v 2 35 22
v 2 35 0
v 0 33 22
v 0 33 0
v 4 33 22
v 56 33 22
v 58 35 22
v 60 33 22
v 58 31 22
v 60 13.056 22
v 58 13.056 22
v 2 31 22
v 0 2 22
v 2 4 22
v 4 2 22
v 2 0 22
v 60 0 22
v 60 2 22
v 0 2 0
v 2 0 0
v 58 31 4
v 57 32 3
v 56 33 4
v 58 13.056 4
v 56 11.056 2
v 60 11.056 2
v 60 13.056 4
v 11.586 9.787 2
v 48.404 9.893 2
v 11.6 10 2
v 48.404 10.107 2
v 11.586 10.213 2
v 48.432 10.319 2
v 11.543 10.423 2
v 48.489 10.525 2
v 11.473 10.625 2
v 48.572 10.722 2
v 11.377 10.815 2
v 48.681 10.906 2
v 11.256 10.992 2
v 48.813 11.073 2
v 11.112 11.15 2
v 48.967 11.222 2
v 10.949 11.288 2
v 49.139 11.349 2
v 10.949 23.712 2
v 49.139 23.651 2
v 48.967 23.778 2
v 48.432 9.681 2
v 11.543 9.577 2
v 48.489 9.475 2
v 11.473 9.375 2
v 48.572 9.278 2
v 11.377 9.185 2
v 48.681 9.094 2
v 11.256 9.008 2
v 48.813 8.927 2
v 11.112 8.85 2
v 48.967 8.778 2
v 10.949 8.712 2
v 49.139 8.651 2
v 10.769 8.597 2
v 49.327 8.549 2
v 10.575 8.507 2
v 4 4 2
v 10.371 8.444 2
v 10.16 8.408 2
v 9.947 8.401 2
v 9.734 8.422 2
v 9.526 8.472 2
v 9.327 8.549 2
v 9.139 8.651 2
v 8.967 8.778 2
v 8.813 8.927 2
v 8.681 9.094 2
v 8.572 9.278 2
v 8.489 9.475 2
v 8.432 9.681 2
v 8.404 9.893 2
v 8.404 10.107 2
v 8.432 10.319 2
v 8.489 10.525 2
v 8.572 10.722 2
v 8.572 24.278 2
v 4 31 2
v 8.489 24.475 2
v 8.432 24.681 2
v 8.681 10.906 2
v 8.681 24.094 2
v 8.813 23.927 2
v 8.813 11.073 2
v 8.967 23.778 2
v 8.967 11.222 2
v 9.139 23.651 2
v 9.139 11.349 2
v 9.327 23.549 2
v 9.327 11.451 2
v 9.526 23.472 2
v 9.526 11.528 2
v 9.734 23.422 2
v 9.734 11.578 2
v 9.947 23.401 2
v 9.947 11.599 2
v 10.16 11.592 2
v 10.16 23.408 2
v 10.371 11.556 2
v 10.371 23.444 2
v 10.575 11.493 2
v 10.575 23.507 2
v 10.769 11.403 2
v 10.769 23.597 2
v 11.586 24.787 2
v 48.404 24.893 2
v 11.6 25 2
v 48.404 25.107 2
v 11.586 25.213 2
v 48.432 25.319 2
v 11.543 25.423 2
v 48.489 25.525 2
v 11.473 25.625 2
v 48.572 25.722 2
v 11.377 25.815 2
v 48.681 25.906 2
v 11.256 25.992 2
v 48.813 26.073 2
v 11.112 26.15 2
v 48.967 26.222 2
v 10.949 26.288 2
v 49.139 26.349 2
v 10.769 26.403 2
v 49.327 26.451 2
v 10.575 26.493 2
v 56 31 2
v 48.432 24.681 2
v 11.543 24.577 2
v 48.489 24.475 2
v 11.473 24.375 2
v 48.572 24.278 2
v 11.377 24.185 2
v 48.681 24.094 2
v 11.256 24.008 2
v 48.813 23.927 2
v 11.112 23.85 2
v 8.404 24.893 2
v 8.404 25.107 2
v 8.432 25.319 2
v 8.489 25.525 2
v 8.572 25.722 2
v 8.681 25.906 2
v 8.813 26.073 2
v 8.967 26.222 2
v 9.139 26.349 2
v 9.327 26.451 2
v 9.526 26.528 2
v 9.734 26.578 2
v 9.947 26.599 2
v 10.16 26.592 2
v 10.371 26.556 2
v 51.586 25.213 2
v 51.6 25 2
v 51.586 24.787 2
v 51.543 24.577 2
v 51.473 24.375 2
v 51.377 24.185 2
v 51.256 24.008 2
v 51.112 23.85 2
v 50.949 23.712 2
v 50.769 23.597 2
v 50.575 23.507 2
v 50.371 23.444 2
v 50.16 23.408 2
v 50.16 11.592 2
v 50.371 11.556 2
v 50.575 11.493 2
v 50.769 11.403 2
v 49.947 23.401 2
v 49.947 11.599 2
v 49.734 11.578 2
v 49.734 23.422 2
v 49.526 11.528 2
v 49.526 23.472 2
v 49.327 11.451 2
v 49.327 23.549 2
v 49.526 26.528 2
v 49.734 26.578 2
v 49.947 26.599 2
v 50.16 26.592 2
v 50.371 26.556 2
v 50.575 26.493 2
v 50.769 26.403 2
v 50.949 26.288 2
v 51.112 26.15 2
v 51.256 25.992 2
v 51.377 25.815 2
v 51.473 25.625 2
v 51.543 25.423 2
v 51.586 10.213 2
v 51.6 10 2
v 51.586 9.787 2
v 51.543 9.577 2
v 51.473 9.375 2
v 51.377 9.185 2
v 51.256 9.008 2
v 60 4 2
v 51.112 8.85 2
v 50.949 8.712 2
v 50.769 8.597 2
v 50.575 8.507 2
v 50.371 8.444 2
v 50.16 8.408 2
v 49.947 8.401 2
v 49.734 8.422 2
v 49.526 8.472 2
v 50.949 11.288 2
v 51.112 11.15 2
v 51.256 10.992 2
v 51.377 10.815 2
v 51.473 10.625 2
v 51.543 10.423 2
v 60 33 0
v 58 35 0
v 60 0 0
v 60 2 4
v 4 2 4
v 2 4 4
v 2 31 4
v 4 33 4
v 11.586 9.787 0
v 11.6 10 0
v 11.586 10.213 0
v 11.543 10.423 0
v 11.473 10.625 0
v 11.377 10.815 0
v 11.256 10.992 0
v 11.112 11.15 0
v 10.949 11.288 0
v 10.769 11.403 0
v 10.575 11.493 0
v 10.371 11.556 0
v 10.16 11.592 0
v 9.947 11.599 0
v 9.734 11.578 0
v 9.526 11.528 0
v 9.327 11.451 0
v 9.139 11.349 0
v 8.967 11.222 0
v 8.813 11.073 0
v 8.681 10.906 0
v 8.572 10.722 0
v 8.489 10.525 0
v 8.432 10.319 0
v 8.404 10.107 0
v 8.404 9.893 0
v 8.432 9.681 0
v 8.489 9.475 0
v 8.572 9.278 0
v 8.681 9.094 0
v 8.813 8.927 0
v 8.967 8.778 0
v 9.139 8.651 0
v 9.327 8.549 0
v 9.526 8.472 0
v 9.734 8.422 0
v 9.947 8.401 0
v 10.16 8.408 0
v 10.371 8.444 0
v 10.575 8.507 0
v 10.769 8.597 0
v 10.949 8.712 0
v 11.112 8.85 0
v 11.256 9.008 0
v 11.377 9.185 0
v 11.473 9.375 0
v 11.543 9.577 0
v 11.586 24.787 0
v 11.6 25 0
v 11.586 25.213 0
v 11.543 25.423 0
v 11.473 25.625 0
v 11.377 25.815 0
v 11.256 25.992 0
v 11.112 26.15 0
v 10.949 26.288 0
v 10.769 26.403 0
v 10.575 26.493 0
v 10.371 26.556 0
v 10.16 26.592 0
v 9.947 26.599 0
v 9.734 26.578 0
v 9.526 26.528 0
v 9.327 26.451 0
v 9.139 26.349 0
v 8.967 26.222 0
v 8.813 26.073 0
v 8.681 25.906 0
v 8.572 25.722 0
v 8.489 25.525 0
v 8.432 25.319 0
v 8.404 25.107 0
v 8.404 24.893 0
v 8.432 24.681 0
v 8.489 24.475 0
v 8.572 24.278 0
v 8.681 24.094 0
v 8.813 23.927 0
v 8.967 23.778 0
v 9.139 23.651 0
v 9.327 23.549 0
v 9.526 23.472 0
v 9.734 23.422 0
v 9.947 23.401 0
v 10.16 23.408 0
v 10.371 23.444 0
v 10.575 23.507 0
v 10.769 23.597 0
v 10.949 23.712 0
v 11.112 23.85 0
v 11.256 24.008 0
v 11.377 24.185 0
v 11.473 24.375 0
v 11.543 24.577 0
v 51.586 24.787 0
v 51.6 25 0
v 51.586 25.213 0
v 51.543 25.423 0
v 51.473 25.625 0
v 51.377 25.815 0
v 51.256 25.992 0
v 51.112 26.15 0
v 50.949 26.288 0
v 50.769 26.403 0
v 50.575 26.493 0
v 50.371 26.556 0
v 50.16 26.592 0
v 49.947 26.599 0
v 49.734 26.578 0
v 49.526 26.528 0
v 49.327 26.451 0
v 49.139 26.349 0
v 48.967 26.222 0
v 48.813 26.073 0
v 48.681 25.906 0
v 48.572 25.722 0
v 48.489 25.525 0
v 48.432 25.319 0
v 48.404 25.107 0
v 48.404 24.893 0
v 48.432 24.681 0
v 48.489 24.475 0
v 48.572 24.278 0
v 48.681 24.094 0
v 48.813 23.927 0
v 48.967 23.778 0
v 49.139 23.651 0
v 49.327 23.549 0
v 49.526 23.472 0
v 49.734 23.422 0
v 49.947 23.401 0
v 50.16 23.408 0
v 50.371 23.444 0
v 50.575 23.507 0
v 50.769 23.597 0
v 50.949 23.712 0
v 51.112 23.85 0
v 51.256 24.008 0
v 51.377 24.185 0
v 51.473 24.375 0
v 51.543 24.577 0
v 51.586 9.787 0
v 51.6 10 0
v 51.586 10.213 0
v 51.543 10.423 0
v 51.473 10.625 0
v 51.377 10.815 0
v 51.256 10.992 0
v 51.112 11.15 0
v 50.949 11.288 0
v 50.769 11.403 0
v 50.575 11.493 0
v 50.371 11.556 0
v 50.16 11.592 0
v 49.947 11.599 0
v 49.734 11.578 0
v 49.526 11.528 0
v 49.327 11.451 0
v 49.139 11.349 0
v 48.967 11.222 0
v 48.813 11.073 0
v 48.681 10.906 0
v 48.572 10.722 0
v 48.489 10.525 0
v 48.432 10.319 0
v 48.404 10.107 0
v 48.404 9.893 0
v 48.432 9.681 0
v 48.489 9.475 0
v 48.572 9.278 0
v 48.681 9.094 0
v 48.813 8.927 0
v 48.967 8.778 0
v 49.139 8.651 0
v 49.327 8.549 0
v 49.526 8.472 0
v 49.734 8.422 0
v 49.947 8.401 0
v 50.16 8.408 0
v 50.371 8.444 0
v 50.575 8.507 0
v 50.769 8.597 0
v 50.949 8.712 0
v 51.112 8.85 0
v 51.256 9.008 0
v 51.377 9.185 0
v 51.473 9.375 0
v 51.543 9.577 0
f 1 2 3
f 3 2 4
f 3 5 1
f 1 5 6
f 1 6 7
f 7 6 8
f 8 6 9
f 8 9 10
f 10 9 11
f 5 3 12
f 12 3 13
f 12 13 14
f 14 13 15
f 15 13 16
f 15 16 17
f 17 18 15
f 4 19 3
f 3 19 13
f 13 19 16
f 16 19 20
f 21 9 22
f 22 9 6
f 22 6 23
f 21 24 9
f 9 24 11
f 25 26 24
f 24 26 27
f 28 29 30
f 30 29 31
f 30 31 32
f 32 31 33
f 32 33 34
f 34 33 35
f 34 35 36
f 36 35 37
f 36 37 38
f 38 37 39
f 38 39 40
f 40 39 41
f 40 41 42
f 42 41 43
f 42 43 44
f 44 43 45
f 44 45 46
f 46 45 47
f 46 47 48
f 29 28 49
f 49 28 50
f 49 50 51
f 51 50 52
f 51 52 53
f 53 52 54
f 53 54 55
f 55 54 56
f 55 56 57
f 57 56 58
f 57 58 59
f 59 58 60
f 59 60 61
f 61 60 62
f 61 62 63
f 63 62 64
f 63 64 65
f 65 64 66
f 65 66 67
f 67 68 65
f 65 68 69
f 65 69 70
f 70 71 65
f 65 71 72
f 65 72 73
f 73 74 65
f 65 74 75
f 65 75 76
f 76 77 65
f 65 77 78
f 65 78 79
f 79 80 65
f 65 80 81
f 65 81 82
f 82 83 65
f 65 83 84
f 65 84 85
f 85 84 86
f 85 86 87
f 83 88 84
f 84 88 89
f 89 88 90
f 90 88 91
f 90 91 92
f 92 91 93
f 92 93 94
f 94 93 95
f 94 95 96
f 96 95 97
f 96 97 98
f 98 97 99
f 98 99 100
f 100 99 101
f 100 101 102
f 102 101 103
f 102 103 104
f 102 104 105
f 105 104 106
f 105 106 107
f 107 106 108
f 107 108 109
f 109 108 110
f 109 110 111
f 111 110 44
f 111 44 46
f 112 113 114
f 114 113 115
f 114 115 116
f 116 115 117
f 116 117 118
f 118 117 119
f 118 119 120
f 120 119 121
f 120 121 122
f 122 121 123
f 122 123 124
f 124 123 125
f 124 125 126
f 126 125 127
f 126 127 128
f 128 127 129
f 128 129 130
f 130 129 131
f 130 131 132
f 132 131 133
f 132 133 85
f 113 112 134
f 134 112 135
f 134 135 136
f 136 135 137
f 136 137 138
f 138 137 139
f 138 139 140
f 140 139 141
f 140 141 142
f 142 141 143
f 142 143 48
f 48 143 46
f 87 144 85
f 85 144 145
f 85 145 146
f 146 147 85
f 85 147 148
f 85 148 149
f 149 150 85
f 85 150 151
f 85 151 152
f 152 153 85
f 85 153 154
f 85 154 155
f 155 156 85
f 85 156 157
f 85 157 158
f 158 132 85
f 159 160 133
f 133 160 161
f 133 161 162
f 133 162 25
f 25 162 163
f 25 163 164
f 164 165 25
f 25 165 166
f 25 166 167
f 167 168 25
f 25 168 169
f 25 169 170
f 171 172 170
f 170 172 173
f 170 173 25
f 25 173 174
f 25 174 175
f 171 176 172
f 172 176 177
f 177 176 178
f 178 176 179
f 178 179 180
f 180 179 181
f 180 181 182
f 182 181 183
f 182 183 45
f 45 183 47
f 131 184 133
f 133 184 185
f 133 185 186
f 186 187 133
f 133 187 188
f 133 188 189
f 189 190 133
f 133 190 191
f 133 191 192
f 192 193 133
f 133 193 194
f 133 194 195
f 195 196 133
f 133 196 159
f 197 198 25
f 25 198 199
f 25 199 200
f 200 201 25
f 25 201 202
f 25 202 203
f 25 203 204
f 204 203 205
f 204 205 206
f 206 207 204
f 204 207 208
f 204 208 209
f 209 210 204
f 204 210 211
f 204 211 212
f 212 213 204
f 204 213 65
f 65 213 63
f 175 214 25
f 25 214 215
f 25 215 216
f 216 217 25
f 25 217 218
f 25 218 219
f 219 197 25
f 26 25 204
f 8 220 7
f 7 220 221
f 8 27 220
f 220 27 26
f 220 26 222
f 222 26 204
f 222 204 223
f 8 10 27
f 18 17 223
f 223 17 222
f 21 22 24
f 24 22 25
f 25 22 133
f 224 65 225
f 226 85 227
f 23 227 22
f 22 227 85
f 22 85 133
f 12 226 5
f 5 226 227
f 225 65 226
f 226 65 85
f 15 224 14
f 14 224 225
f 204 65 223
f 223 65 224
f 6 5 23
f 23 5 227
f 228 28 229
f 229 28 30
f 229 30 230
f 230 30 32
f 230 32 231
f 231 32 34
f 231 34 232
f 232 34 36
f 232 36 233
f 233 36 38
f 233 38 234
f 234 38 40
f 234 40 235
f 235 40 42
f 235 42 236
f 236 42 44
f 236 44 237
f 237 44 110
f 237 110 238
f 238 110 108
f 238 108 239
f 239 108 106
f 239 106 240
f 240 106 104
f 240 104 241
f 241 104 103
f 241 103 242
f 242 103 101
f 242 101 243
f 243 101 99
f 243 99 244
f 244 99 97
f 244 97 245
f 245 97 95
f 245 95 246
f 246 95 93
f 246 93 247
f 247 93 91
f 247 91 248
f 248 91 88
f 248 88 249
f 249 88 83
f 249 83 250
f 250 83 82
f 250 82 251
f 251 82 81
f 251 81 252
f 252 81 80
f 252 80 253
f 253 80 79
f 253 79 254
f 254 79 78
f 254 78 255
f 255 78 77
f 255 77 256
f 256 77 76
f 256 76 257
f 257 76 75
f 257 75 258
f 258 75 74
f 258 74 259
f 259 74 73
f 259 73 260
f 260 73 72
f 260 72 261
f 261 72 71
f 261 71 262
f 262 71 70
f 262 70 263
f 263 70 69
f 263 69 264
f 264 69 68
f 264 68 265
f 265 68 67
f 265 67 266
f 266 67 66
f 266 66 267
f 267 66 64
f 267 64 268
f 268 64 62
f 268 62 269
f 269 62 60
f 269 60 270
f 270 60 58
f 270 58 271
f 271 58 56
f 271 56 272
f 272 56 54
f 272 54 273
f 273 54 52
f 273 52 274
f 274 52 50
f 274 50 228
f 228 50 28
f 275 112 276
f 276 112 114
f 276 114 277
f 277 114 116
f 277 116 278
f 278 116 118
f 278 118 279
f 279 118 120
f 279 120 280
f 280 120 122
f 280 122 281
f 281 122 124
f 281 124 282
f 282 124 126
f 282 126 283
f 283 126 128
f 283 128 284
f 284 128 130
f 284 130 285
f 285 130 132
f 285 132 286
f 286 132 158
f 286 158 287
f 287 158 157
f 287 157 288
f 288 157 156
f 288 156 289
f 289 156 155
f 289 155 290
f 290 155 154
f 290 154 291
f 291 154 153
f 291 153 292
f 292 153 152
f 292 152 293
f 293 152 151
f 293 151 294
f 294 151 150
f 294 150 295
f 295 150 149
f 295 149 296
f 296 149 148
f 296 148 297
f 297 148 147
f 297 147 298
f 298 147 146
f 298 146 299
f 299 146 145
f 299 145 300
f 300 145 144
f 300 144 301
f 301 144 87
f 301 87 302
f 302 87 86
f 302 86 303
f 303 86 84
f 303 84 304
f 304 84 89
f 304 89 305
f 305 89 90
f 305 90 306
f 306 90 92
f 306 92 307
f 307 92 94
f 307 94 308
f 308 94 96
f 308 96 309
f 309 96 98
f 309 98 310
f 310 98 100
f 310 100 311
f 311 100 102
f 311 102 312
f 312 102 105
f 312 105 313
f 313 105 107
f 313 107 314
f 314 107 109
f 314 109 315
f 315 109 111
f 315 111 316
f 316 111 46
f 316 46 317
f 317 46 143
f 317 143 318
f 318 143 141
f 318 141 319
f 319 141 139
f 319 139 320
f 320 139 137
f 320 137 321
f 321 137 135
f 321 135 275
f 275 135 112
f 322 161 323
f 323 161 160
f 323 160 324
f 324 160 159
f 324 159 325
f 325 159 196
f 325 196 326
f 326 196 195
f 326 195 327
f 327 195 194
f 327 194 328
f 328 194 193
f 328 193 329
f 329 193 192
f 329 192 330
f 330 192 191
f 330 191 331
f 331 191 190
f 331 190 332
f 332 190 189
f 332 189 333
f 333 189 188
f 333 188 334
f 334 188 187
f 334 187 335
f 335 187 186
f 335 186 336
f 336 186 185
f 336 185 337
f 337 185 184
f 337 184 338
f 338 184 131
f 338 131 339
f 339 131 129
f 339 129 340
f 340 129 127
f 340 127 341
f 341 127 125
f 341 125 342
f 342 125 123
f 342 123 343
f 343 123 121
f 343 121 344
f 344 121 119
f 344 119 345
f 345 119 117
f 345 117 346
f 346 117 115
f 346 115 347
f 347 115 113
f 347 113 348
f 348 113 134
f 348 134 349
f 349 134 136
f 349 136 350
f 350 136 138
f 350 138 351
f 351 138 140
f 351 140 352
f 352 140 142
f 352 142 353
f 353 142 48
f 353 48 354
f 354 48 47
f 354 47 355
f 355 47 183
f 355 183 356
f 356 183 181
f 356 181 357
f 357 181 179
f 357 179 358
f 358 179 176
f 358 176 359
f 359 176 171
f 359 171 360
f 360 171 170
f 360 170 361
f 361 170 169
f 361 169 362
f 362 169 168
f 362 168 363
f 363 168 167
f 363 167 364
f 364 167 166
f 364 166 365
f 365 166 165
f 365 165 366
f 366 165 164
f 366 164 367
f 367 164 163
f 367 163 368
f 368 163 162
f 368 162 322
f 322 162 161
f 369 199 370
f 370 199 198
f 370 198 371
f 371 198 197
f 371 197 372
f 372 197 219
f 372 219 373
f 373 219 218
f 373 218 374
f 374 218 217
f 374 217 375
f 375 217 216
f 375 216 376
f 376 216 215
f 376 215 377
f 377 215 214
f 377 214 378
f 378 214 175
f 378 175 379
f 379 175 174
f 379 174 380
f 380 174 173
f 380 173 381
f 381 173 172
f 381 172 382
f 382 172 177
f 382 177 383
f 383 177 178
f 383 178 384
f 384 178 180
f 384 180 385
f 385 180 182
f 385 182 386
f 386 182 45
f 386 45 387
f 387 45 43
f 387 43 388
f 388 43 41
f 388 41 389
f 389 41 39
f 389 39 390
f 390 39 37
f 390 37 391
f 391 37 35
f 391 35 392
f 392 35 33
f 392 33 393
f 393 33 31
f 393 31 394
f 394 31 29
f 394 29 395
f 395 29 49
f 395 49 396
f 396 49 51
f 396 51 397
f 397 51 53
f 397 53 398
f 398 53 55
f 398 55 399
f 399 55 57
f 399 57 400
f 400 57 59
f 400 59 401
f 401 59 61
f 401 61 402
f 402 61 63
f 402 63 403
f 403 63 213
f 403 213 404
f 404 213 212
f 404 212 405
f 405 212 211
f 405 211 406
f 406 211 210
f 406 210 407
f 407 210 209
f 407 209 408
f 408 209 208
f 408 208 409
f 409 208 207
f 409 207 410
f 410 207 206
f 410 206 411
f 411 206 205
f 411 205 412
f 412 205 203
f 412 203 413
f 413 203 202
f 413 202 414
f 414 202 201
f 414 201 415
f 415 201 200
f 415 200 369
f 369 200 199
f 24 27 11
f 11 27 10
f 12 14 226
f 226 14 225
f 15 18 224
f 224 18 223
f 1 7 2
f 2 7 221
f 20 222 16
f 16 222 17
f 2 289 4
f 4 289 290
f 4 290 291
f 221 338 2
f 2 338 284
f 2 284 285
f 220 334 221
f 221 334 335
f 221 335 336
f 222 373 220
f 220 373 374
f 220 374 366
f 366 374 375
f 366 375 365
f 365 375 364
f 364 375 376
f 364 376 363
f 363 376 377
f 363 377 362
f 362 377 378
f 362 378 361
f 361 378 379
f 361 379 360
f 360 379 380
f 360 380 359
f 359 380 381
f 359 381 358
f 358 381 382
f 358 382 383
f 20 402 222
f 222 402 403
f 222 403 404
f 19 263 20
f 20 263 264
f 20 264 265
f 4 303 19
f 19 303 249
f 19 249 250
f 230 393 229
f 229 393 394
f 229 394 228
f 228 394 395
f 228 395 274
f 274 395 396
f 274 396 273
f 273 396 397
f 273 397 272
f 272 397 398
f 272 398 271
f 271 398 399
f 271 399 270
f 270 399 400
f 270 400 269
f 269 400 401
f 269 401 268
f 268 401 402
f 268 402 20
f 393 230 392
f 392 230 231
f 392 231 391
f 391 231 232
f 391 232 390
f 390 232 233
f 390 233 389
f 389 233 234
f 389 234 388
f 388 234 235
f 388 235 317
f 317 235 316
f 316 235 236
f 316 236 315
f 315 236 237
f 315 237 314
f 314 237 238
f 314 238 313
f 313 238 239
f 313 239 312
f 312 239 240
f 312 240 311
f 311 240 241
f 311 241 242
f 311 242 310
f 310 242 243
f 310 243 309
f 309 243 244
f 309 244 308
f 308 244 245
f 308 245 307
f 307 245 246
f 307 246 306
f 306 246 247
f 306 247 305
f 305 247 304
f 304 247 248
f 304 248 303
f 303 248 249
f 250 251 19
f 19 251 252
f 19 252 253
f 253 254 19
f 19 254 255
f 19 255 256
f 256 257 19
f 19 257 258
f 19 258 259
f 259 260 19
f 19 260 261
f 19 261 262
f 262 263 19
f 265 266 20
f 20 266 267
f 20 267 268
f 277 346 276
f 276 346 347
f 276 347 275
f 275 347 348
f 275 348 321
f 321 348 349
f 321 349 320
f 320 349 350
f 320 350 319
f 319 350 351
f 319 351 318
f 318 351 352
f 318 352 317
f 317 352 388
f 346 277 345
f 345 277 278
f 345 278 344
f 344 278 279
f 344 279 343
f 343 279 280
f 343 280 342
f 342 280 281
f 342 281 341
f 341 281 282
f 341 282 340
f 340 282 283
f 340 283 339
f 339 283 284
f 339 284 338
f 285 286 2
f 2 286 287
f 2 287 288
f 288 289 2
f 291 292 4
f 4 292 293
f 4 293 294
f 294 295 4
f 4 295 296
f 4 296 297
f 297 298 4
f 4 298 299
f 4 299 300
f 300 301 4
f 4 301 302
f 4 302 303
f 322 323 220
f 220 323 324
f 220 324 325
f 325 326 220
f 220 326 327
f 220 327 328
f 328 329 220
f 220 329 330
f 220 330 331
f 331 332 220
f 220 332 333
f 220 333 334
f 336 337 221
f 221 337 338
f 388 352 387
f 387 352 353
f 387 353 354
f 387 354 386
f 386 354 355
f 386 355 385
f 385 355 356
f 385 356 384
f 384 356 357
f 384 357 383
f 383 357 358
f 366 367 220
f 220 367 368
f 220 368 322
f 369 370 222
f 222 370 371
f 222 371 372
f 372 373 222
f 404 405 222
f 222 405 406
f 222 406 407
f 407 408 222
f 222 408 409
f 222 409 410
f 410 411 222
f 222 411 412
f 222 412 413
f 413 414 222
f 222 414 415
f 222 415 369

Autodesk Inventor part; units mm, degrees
ref_plane "YZ Plane" through (0, 0, 0) normal (1, 0, 0) x (0, 1, 0)
ref_plane "XZ Plane" through (0, 0, 0) normal (0, 1, 0) x (-1, 0, 0)
ref_plane "XY Plane" through (0, 0, 0) normal (0, 0, 1) x (1, 0, 0)
sketch "スケッチ1" plane through (0, 0, 0) normal (0, 0, 1) x (1, 0, 0)
  line L0 (0, 0) -> (60, 0)
  line L1 (60, 0) -> (60, 35)
  line L2 (60, 35) -> (0, 35)
  line L3 (0, 35) -> (0, 0)
  dimension "d0" = 60
  dimension "d1" = 35
extrude "押し出し1" add sketch "スケッチ1" along normal blind 2
sketch "スケッチ2" plane through (0, 0, 2) normal (0, 0, 1) x (1, 0, 0)
  line L0 (60, 35) -> (0, 35) projected
  line L1 (2, 33) -> (2, 2)
  line L2 (0, 35) -> (0, 0) projected
  line L3 (58, 33) -> (58, 13.0563)
  line L4 (60, 0) -> (60, 35) projected
  line L5 (2, 33) -> (58, 33)
  line L6 (2, 2) -> (58, 2)
  line L7 (0, 0) -> (60, 0) projected
  line L8 (58, 13.0563) -> (60, 13.0563)
  line L9 (60, 2) -> (58, 2)
  line L10 (0, 35) -> (60, 35)
  line L11 (60, 0) -> (0, 0)
  line L12 (0, 0) -> (0, 35)
  line L13 (60, 13.0563) -> (58, 13.0563)
  line L14 (60, 2) -> (2, 2)
  line L15 (60, 35) -> (60, 13.0563)
  line L16 (60, 2) -> (60, 0)
  dimension "d4" = 2
  dimension "d5" = 2
  dimension "d6" = 2
extrude "押し出し3" add sketch "スケッチ2" along normal blind 20 contours L4 L8 L3 L5 L1 L6 L9 L7 L2 L0
sketch "スケッチ3" plane through (0, 0, 2) normal (0, 0, 1) x (1, 0, 0)
  circle A0 centre (10, 25) radius 1.6
  line L0 (60, 35) -> (0, 35) projected
  line L1 (0, 35) -> (0, 0) projected
  circle A1 centre (50, 25) radius 1.6
  circle A2 centre (10, 10) radius 1.6
  circle A3 centre (50, 10) radius 1.6
  dimension "d12" = 3.2
  dimension "d13" = 10
  dimension "d14" = 10
  dimension "d15" = 3.2
  dimension "d16" = 3.2
  dimension "d17" = 3.2
extrude "押し出し4" cut sketch "スケッチ3" against normal blind 2
chamfer "面取り1" distance 2 angle 45 7 edges at (2, 17.5, 2) (30, 33, 2) (31, 2, 2) (2, 2, 12) (2, 33, 12) (60, 35, 11) (58, 23.0282, 2)
chamfer "面取り2" distance 2 angle 45 2 edges at (59, 13.0563, 2) (58, 33, 13)
chamfer "面取り3" distance 2 angle 45 2 edges at (0, 0, 11) (0, 35, 11)
properties part number "LiFeCase"
